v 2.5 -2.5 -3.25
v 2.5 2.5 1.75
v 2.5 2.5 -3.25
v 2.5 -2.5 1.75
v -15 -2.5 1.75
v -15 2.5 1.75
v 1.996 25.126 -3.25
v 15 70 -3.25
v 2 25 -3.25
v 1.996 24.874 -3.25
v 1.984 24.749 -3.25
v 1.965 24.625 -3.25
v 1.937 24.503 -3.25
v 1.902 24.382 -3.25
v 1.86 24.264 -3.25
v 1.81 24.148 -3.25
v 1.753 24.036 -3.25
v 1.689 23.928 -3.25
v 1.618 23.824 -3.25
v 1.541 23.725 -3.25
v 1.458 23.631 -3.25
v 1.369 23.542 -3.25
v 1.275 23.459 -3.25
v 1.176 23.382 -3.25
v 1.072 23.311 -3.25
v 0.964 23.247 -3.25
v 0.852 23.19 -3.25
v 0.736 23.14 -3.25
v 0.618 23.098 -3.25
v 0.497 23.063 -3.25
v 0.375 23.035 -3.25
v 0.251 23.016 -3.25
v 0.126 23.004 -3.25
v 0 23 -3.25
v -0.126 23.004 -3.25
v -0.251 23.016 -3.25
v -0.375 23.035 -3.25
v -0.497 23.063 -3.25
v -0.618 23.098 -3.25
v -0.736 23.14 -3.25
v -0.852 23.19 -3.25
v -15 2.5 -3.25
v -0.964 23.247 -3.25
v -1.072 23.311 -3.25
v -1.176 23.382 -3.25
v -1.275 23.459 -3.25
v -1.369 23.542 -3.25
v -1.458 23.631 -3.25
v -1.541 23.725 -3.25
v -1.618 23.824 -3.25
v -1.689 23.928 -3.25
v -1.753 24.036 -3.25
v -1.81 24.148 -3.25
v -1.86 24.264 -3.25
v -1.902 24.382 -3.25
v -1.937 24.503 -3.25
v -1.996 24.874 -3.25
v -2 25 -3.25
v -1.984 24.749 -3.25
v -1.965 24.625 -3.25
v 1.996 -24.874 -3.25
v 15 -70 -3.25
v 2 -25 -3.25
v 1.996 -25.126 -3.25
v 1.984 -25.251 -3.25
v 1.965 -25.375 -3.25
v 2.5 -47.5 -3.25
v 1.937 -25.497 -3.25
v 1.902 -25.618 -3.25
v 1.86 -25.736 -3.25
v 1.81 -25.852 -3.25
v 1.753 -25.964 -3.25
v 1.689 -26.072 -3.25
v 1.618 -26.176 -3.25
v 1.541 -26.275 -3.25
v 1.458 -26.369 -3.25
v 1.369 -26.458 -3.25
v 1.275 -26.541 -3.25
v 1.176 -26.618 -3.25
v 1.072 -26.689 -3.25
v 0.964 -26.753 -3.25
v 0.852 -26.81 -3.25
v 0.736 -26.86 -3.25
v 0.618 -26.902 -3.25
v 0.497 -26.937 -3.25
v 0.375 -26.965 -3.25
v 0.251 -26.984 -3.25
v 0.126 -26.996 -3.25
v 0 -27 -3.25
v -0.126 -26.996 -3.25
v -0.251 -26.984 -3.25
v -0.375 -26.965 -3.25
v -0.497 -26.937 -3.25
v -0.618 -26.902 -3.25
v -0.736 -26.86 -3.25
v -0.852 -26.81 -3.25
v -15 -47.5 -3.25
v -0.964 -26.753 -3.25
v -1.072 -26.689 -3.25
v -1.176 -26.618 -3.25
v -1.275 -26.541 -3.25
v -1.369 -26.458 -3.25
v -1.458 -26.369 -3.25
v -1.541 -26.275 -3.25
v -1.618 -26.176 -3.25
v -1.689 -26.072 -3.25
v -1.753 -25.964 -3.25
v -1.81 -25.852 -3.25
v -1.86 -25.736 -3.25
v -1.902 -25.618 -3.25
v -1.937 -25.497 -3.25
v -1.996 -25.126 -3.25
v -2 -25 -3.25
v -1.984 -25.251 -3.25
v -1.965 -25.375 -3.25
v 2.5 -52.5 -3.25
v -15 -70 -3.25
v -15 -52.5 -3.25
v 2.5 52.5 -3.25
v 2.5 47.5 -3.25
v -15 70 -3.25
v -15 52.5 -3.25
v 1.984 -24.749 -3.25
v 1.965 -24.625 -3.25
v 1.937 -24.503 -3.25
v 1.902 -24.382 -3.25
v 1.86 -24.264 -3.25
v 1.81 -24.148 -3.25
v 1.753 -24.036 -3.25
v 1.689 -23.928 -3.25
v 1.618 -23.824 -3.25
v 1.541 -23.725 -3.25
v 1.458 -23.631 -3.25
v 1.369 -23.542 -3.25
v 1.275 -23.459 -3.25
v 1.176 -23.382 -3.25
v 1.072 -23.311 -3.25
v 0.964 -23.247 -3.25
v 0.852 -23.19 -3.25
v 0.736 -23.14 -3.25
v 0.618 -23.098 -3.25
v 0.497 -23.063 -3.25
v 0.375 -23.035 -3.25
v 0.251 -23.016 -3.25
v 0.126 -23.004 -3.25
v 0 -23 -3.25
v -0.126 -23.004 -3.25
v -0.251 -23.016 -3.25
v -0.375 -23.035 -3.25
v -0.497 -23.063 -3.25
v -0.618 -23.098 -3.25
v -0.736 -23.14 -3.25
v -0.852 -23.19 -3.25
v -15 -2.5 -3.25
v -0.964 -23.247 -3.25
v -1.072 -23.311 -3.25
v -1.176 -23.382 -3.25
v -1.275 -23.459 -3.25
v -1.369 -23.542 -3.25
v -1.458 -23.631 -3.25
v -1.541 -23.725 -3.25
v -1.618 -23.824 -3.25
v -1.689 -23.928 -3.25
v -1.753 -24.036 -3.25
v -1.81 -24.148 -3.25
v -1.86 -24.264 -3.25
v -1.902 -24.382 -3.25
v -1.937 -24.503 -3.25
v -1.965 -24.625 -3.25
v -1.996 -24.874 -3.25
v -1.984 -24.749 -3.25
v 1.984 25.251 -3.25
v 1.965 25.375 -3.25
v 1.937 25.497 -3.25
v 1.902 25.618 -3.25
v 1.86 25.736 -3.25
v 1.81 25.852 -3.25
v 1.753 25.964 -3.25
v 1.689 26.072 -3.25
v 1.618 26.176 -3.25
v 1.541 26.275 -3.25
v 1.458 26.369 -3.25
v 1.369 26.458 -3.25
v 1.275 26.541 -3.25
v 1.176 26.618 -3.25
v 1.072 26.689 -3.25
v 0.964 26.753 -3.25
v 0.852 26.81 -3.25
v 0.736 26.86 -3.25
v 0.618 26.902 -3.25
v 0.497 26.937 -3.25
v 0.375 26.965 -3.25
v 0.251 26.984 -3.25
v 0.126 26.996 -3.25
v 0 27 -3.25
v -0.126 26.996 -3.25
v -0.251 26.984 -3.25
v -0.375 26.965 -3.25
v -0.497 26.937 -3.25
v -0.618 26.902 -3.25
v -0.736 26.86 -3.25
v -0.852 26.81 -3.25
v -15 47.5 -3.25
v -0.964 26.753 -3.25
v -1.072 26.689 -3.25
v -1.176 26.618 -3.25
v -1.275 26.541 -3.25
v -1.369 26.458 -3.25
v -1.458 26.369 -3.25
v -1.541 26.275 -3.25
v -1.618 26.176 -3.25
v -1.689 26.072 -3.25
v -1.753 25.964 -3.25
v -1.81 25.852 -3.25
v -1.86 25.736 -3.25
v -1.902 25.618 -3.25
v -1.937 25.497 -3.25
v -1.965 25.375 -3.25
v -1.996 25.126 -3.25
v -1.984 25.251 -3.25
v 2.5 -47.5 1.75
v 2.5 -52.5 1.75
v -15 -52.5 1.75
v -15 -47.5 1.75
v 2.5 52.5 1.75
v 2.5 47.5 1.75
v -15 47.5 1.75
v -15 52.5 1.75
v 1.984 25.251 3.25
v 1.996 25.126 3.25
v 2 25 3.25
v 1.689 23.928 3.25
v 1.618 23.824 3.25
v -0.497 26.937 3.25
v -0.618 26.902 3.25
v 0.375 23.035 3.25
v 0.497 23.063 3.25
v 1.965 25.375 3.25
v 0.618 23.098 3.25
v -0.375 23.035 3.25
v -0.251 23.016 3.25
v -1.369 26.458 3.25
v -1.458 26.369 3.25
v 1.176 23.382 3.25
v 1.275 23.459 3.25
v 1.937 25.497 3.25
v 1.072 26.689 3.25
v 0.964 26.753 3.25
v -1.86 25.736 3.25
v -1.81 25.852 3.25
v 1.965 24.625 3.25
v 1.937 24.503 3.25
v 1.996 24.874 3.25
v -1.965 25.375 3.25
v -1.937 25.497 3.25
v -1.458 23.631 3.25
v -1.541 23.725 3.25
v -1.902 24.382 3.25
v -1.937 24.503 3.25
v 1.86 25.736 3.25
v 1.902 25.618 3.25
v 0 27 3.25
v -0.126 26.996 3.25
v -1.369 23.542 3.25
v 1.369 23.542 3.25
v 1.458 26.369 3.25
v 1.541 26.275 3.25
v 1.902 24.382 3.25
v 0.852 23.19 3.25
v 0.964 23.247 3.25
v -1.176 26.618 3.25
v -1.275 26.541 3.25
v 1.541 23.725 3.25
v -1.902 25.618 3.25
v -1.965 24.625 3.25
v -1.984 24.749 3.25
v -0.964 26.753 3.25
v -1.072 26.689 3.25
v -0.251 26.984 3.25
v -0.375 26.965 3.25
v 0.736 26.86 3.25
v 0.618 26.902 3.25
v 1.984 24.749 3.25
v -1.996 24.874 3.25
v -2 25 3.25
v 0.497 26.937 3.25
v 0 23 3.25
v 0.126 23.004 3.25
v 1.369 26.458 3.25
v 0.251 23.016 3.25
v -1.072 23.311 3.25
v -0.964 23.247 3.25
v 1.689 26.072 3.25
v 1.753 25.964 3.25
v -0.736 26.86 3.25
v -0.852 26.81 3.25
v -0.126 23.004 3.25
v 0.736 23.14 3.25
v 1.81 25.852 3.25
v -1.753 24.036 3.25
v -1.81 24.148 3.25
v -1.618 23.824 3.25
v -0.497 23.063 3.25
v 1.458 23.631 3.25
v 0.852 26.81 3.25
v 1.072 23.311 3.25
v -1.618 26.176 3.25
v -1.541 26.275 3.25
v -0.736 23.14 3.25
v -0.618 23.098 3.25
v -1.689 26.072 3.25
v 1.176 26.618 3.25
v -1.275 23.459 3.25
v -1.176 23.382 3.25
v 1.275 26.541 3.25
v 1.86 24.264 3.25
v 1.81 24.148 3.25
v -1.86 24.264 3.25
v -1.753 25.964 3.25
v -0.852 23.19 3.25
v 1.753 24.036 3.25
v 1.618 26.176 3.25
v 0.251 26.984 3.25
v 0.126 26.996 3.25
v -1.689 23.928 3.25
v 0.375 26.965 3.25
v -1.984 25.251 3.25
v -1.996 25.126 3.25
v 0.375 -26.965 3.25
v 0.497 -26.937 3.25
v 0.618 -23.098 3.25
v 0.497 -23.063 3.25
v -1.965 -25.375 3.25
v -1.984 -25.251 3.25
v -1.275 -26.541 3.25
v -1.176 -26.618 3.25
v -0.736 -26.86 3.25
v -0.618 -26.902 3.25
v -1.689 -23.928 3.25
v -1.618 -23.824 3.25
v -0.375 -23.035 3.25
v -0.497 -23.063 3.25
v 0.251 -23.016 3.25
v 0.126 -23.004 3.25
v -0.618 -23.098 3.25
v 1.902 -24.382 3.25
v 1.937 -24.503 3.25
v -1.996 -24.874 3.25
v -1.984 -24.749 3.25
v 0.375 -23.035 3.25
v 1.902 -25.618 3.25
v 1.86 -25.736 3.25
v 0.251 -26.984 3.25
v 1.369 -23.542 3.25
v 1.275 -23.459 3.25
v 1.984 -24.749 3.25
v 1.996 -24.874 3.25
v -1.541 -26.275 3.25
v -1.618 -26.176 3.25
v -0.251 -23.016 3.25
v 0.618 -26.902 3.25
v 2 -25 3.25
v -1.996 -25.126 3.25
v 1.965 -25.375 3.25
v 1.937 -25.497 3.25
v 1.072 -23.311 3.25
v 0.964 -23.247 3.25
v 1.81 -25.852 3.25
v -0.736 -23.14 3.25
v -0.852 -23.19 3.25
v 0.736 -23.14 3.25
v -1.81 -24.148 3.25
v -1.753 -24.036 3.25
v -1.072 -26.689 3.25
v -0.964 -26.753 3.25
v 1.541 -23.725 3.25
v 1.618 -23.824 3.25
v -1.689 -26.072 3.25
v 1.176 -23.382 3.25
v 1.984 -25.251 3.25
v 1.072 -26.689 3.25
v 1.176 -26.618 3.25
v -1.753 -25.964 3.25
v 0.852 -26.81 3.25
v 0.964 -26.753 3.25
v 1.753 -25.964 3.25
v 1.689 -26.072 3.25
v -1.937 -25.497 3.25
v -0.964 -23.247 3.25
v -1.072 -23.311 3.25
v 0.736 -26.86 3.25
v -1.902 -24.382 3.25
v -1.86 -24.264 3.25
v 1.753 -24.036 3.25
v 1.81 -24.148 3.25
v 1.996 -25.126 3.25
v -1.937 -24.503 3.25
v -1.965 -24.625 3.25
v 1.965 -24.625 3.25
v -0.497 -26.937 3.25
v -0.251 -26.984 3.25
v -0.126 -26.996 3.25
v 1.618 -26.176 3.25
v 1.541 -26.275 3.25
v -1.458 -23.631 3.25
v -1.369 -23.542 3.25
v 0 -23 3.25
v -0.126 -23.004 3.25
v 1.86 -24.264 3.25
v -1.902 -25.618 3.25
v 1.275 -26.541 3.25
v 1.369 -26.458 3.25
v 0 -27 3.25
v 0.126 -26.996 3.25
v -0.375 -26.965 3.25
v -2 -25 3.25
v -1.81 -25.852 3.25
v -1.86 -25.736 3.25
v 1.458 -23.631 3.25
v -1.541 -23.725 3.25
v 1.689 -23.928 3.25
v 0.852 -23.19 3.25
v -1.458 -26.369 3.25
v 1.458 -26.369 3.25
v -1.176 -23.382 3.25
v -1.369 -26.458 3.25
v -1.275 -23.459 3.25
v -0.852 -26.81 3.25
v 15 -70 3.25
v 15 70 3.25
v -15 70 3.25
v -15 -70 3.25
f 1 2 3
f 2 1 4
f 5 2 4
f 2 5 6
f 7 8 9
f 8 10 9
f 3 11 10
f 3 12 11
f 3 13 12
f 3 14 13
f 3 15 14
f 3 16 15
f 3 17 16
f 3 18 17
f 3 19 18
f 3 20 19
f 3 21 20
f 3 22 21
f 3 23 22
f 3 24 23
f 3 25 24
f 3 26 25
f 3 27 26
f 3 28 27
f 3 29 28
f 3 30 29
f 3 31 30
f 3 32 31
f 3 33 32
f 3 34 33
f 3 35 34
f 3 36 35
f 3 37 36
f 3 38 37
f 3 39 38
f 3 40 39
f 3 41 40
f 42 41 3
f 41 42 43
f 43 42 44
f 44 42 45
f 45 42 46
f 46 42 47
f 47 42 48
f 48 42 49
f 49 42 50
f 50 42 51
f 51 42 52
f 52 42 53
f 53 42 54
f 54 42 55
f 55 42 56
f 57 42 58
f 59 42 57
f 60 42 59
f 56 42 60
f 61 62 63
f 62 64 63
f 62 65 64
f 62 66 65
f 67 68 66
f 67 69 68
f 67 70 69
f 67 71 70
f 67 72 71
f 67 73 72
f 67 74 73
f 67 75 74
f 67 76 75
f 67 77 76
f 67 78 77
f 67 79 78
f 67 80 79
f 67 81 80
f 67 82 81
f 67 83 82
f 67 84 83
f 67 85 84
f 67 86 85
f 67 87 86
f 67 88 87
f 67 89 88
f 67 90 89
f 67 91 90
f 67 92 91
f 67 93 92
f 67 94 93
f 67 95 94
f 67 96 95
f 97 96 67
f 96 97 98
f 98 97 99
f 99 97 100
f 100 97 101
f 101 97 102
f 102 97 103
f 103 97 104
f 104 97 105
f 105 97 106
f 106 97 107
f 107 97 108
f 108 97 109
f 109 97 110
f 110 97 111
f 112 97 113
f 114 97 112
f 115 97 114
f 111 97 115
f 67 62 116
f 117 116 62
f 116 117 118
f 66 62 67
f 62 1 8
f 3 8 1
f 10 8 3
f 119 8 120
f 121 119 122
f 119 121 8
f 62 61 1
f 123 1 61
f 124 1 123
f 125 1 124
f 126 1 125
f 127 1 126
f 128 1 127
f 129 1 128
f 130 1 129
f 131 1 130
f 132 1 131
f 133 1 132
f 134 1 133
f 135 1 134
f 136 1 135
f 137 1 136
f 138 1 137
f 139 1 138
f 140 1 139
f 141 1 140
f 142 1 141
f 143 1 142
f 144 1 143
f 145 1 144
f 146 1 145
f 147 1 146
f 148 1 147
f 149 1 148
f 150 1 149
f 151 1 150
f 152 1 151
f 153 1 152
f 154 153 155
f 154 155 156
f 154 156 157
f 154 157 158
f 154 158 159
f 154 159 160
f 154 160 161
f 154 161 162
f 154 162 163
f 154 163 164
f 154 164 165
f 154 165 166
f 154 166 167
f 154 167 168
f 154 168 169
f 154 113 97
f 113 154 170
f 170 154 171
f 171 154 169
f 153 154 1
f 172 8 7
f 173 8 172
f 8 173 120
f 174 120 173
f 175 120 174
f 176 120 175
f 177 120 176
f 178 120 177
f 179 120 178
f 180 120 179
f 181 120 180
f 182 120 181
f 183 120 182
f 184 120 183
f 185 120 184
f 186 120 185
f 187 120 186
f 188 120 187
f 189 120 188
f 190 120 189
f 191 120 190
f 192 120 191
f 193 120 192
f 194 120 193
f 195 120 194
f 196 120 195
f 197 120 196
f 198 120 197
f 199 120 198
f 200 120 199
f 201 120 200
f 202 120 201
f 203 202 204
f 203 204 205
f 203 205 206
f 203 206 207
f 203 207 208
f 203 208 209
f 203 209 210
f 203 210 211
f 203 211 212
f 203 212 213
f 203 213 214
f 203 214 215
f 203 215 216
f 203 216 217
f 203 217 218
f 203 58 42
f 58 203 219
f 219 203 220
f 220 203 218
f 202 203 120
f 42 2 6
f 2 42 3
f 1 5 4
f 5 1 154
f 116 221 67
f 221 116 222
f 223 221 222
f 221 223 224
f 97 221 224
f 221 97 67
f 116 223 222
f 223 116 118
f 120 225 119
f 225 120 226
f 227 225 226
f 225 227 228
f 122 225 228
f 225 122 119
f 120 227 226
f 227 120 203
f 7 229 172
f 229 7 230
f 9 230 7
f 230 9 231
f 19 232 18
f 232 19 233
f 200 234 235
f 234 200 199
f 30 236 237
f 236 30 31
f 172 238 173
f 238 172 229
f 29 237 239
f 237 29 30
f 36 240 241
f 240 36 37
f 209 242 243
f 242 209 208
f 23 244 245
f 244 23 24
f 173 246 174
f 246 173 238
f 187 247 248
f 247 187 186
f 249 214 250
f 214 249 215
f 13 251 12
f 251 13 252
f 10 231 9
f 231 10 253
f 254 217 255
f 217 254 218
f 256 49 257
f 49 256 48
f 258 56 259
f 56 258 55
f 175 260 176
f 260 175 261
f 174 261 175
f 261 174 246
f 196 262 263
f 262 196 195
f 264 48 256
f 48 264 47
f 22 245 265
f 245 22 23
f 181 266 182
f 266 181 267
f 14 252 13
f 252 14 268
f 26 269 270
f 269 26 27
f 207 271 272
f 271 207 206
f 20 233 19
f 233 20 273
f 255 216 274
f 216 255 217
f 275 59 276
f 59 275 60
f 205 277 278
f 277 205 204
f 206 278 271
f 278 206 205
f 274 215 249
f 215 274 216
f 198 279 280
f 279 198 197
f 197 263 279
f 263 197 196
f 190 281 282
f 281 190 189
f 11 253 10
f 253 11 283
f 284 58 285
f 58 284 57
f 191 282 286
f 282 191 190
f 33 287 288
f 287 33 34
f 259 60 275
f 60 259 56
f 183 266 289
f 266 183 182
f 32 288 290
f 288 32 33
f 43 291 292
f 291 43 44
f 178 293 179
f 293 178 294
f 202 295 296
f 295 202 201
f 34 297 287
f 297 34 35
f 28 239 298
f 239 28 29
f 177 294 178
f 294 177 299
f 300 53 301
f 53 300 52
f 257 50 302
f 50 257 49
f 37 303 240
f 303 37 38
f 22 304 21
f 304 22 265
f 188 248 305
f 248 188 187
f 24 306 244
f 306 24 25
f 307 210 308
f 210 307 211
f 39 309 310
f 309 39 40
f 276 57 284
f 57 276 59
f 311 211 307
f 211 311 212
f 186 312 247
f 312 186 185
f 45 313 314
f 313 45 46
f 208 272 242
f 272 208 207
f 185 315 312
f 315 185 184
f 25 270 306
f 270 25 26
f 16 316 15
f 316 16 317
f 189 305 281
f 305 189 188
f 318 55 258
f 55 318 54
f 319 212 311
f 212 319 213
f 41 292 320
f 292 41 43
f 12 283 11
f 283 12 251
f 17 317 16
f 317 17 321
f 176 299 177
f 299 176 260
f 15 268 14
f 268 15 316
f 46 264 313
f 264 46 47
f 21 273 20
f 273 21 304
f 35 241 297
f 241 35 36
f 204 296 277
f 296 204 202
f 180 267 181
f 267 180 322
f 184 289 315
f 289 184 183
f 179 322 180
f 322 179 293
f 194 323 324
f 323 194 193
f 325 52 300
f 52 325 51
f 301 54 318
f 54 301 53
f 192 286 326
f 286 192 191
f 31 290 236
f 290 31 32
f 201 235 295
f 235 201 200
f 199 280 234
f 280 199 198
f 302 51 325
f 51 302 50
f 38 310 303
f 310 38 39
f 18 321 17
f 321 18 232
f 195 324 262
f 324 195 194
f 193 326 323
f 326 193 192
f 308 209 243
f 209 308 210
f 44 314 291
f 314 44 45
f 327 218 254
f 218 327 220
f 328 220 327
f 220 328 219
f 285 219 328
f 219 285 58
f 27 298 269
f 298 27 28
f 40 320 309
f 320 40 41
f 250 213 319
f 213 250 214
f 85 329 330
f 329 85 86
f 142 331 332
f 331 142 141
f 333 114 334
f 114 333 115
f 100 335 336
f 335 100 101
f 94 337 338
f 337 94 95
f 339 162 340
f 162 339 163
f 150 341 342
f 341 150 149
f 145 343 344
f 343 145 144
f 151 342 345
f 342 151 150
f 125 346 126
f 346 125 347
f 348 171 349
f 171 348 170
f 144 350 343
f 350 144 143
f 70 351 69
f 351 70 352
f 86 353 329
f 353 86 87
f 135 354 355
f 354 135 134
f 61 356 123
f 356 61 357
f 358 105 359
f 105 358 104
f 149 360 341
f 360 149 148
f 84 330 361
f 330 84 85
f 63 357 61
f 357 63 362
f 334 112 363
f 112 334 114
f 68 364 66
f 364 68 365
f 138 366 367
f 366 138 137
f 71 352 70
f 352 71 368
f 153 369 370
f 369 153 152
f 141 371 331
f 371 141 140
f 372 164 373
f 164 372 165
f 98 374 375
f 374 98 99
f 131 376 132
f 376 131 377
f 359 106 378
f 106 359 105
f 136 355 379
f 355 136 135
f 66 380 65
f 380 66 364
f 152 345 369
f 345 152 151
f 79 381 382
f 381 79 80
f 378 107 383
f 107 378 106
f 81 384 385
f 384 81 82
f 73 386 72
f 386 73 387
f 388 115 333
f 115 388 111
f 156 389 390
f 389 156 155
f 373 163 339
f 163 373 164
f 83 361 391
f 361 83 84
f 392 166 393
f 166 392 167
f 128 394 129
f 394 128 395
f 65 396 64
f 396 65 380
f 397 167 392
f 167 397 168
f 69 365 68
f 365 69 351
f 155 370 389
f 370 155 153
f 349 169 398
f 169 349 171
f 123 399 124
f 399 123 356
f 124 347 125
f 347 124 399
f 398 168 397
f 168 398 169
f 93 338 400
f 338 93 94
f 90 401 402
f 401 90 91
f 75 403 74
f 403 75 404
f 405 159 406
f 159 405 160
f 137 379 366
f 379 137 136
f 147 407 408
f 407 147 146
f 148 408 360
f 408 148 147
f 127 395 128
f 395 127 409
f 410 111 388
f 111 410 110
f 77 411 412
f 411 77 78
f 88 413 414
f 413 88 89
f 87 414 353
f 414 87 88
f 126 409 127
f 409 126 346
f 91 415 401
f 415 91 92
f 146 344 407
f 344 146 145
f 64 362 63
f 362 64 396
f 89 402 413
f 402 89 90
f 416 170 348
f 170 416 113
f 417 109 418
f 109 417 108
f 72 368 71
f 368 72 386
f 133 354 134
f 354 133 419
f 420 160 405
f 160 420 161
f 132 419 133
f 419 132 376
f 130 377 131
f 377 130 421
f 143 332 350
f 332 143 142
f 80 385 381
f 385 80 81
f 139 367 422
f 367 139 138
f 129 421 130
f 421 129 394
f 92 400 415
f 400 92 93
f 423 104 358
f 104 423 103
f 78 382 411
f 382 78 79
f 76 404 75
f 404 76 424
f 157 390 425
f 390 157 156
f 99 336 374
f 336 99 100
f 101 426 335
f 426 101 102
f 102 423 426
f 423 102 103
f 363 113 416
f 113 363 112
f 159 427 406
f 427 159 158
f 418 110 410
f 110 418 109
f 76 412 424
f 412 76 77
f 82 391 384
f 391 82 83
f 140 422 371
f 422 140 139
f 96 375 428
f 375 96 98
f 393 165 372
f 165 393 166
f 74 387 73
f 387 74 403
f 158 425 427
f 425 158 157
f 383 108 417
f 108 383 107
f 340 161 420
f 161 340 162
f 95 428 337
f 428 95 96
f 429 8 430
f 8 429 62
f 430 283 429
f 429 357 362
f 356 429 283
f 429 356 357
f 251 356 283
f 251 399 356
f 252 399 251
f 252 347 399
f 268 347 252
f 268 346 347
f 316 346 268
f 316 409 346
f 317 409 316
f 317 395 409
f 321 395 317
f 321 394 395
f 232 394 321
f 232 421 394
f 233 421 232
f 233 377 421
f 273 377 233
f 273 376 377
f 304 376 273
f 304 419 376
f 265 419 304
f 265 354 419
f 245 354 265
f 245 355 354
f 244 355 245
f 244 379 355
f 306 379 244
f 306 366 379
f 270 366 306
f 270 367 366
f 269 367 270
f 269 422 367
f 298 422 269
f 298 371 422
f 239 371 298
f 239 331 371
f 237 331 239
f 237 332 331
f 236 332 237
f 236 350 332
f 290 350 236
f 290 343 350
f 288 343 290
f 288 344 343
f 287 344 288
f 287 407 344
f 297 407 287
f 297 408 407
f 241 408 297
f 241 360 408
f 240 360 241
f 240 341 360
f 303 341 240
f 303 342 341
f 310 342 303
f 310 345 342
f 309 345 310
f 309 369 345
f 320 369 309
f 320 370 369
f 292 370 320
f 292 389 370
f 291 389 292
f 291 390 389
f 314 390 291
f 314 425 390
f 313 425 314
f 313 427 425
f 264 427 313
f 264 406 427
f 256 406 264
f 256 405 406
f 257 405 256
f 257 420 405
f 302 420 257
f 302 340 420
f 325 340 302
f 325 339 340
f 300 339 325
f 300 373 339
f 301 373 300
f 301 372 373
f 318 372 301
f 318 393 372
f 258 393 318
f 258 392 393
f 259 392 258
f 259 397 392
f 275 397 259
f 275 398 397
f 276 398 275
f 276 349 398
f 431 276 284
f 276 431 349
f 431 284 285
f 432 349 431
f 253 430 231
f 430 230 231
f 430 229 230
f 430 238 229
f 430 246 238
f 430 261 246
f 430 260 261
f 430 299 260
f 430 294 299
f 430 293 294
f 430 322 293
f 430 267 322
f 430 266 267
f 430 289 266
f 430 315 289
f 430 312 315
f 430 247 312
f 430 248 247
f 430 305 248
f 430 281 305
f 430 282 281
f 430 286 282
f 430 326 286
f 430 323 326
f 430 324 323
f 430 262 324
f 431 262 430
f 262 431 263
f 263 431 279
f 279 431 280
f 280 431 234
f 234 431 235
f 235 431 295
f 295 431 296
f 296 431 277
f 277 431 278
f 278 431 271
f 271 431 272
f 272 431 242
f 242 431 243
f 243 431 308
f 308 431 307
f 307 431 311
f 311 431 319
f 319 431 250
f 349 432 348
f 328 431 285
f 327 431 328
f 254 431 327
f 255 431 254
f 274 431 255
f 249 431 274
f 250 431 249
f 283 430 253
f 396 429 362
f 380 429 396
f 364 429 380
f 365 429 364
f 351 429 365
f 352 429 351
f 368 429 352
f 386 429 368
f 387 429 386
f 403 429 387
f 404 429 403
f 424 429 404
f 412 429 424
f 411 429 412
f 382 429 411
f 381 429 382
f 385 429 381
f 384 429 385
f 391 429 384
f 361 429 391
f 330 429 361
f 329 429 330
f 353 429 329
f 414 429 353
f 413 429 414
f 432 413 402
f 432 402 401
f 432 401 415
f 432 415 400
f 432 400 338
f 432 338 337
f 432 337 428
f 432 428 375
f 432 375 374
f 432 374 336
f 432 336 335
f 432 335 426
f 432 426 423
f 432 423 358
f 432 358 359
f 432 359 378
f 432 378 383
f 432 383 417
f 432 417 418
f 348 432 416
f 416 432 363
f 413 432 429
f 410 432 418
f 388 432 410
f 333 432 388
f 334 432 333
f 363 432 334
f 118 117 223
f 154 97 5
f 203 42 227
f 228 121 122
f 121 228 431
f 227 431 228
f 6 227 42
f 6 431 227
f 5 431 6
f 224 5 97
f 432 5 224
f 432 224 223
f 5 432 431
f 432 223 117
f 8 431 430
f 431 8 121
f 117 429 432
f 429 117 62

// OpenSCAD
$fn = 100;
difference()
{
  cube(size = [30, 140, 6.5], center = true);
  translate(v = [-15, 0, 0])
  {
    translate(v = [0, 0, -0.75])
    {
      union()
      {
        union()
        {
          cube(size = [35, 5, 5], center = true);
          translate(v = [0, 0, 15])
          {
            translate(v = [-24.375, 0, 0])
            {
              rotate(a = [0, 90, 90], v = undef)
              {
                translate(v = [0, -7.5, 0])
                {
                  rotate_extrude(angle = 180, convexity = 4, $fn = 40)
                  {
                    translate(v = [15, 0, 0])
                    {
                      square(size = [5, 5], center = true);
                    }
                  }
                }
              }
            }
          }
        }
        translate(v = [0, -50, 0])
        {
          union()
          {
            cube(size = [35, 5, 5], center = true);
            translate(v = [0, 0, 15])
            {
              translate(v = [-24.375, 0, 0])
              {
                rotate(a = [0, 90, 90], v = undef)
                {
                  translate(v = [0, -7.5, 0])
                  {
                    rotate_extrude(angle = 180, convexity = 4, $fn = 40)
                    {
                      translate(v = [15, 0, 0])
                      {
                        square(size = [5, 5], center = true);
                      }
                    }
                  }
                }
              }
            }
          }
        }
        translate(v = [0, 50, 0])
        {
          union()
          {
            cube(size = [35, 5, 5], center = true);
            translate(v = [0, 0, 15])
            {
              translate(v = [-24.375, 0, 0])
              {
                rotate(a = [0, 90, 90], v = undef)
                {
                  translate(v = [0, -7.5, 0])
                  {
                    rotate_extrude(angle = 180, convexity = 4, $fn = 40)
                    {
                      translate(v = [15, 0, 0])
                      {
                        square(size = [5, 5], center = true);
                      }
                    }
                  }
                }
              }
            }
          }
        }
      }
    }
  }
  union()
  {
    translate(v = [0, 25, 0])
    {
      cylinder(h = 6.53, r = 2, center = true);
    }
    translate(v = [0, -25, 0])
    {
      cylinder(h = 6.53, r = 2, center = true);
    }
  }
}
